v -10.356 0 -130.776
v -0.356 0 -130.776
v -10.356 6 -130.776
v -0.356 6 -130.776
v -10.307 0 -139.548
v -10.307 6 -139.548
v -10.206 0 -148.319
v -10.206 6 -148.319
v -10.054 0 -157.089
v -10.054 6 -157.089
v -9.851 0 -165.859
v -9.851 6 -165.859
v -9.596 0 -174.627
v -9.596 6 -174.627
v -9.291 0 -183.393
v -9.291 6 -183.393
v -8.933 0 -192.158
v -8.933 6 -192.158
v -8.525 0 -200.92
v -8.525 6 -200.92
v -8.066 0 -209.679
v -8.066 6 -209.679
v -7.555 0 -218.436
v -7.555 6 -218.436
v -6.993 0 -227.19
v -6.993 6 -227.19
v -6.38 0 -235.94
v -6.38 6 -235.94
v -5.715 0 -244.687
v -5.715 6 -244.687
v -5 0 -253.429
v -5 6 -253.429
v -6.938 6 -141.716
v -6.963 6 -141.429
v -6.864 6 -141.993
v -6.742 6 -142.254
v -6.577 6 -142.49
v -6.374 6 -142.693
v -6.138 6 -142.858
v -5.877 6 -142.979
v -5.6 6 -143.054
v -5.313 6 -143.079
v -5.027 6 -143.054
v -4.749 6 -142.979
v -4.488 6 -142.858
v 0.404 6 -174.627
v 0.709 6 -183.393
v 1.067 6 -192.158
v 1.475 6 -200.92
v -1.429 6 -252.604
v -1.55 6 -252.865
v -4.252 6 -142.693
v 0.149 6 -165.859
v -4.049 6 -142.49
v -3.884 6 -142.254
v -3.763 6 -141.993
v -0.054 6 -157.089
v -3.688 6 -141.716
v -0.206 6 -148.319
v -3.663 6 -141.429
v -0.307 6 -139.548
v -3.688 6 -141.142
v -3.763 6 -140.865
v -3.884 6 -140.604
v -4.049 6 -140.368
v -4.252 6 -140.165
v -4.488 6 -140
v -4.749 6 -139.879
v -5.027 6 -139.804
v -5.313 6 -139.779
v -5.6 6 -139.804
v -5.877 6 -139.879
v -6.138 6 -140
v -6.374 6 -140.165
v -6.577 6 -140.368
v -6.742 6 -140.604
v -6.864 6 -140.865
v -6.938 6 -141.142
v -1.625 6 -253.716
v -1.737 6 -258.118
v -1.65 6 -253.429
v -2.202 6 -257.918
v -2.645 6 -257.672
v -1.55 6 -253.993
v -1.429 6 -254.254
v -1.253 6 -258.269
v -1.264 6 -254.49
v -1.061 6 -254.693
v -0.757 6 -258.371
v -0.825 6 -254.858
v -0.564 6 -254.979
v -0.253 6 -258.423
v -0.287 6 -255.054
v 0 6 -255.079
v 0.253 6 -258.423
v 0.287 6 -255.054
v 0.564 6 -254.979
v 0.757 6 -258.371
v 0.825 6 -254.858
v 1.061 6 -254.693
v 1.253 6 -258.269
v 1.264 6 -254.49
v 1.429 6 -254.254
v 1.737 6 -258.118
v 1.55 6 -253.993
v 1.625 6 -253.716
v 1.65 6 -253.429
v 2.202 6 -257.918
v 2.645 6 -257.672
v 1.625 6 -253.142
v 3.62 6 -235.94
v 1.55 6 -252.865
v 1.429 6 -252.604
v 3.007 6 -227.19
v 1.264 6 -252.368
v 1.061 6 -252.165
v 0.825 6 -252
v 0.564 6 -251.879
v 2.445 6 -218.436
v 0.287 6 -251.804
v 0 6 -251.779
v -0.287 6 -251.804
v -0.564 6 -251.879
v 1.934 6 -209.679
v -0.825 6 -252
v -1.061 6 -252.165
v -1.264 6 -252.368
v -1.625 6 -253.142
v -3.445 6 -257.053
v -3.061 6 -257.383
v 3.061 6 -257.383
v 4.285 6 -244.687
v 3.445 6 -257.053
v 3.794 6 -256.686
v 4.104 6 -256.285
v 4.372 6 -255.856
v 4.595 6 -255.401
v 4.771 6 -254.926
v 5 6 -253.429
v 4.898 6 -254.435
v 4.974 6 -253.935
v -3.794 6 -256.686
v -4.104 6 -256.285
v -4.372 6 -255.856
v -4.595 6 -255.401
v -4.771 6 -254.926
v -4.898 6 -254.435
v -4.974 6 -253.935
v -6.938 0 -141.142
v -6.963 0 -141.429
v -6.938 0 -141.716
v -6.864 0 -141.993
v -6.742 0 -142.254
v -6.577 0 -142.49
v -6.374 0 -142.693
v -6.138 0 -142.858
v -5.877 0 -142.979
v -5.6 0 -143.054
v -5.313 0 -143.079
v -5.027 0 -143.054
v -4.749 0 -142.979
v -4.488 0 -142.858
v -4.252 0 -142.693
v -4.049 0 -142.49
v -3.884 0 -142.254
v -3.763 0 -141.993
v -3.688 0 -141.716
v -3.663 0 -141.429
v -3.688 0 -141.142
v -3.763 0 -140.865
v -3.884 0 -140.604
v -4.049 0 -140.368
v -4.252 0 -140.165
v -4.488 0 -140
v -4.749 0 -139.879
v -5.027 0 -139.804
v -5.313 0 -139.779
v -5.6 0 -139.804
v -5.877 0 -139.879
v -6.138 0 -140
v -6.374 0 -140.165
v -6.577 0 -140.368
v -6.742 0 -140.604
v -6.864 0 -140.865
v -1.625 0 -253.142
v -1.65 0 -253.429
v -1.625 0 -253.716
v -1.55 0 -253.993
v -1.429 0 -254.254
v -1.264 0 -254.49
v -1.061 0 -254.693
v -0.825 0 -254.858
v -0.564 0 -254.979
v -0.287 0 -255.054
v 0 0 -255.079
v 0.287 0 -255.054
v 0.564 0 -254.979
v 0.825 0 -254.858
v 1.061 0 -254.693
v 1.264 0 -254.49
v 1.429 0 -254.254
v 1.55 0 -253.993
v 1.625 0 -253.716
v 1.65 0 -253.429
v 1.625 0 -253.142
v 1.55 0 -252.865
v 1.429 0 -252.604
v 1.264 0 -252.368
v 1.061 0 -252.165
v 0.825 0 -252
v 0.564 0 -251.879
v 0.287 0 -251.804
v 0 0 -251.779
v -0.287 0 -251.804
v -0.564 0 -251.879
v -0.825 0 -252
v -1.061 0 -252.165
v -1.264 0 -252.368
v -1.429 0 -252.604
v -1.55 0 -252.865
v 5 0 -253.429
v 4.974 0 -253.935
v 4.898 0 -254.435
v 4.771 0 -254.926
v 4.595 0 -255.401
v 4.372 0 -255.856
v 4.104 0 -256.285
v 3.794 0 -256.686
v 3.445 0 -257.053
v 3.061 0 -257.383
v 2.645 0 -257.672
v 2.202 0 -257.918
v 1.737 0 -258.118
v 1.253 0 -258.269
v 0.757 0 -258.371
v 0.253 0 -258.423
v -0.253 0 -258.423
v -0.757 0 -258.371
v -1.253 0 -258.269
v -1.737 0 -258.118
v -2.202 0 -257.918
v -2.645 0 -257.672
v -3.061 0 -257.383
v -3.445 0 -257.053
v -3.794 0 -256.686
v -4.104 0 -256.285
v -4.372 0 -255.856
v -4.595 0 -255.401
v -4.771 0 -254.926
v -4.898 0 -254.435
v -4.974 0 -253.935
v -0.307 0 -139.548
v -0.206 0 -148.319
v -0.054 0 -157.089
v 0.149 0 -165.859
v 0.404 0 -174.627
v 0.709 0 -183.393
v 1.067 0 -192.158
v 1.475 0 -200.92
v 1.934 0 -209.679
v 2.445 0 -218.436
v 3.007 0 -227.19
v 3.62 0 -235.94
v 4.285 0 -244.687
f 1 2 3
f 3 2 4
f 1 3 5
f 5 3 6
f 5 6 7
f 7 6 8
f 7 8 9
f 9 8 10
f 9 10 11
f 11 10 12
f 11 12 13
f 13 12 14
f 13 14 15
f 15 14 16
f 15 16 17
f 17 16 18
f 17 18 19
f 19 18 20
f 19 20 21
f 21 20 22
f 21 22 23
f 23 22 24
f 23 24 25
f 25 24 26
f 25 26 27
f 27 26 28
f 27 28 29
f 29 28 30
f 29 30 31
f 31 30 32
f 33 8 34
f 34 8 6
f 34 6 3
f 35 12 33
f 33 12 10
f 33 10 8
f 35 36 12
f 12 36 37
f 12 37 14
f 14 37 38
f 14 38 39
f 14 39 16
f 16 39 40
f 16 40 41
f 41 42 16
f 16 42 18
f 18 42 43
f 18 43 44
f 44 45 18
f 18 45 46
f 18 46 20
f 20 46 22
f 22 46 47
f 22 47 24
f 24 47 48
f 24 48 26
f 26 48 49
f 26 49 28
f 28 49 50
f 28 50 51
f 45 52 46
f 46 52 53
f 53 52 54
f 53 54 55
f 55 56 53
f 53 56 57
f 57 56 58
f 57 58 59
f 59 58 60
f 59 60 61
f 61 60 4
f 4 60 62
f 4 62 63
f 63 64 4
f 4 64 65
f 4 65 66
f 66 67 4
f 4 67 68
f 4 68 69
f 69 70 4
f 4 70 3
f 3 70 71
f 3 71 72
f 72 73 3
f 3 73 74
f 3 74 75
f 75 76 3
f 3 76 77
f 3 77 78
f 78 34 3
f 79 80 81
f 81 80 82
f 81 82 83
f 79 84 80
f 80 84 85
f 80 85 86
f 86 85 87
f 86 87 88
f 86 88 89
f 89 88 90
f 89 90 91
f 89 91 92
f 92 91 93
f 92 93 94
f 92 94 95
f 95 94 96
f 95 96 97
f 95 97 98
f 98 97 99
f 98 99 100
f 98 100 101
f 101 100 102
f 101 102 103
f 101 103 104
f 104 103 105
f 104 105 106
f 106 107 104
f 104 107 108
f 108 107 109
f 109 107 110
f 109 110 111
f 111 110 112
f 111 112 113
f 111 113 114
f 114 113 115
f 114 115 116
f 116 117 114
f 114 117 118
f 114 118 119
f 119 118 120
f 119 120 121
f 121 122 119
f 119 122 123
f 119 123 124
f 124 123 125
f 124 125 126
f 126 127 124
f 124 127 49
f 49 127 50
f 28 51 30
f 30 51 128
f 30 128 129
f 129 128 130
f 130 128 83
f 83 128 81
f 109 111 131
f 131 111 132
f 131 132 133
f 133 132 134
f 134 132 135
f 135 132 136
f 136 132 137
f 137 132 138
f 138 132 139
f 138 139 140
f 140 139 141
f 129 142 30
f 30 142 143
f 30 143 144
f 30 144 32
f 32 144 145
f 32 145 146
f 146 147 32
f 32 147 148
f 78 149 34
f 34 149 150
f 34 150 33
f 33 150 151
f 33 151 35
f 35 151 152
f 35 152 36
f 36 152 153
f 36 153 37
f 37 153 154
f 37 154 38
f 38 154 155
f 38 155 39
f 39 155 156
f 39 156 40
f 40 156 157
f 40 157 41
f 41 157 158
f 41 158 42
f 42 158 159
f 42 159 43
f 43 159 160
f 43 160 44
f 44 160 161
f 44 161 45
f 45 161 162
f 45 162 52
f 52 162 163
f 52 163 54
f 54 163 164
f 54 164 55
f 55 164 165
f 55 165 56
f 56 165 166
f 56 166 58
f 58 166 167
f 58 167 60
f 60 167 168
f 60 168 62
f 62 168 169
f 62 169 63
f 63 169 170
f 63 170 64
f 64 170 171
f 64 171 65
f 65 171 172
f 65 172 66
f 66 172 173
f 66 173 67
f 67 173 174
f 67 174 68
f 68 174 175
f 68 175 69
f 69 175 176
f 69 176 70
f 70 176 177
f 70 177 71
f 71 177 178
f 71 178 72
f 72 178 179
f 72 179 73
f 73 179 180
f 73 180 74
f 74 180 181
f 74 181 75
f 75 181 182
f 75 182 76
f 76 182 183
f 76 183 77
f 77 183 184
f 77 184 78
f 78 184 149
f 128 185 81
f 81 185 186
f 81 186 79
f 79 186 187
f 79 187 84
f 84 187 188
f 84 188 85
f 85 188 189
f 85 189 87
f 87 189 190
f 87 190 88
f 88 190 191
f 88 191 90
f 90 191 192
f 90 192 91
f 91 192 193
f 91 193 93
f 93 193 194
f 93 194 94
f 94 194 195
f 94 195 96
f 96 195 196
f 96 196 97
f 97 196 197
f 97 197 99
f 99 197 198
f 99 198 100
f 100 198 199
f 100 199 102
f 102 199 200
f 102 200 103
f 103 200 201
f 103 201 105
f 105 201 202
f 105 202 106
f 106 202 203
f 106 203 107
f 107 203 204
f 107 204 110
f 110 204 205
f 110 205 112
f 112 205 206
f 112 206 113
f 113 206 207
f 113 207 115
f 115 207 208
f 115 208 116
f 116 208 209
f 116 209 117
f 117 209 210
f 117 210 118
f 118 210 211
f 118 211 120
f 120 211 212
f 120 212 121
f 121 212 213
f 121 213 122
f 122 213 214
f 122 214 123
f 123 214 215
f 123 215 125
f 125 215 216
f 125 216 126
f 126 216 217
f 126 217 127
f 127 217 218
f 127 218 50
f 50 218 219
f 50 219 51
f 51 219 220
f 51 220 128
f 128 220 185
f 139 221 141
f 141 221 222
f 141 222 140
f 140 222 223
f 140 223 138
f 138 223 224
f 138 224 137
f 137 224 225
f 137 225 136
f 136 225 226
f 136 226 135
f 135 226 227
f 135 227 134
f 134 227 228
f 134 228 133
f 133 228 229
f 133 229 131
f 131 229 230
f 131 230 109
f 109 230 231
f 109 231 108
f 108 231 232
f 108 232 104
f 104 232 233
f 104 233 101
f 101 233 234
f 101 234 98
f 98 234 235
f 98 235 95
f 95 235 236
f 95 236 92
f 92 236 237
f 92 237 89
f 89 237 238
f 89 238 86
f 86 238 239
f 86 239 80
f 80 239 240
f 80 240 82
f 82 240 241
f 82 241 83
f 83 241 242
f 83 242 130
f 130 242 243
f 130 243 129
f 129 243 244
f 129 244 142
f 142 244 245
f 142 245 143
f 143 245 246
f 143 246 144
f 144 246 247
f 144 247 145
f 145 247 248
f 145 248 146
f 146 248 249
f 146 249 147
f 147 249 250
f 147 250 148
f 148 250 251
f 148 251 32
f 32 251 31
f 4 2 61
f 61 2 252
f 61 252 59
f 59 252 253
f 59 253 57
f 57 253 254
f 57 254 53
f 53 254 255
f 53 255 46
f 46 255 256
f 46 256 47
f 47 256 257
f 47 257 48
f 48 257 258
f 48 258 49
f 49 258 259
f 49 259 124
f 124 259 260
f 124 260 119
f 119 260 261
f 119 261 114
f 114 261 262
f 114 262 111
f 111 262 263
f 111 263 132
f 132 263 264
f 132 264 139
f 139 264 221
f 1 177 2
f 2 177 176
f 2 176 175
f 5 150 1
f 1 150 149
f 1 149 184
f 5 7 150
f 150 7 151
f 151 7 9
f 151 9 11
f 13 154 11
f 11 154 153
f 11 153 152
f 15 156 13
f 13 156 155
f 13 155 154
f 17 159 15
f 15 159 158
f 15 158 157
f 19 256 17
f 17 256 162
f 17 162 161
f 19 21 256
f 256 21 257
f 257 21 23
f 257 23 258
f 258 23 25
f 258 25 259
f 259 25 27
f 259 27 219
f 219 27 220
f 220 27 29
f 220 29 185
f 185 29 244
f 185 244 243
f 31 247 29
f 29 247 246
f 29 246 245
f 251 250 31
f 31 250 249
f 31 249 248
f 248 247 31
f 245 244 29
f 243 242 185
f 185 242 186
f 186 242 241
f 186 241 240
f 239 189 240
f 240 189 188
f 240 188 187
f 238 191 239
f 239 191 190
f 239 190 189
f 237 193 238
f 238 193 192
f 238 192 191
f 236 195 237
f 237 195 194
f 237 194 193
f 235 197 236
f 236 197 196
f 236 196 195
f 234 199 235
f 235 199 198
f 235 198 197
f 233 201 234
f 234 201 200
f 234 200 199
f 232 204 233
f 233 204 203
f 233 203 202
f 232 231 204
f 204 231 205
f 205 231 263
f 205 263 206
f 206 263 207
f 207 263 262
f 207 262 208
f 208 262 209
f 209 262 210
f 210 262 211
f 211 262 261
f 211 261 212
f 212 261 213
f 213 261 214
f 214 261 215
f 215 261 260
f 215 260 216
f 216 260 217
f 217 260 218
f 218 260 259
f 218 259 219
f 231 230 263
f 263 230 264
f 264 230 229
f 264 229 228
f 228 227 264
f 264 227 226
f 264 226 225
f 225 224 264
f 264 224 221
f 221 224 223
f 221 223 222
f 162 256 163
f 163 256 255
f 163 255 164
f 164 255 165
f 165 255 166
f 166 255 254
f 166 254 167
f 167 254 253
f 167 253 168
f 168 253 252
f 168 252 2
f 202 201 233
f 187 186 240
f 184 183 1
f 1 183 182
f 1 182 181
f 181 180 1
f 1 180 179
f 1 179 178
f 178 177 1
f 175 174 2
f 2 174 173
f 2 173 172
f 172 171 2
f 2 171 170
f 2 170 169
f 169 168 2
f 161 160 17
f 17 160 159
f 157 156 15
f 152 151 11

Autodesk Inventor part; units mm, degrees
ref_plane "YZ Plane" through (0, 0, 0) normal (1, 0, 0) x (0, 1, 0)
ref_plane "XZ Plane" through (0, 0, 0) normal (0, 1, 0) x (-1, 0, 0)
ref_plane "XY Plane" through (0, 0, 0) normal (0, 0, 1) x (1, 0, 0)
sketch "Sketch1" plane through (0, 0, 0) normal (0, 1, 0) x (-1, 0, 0)
  line L0 (0, 0) -> (0, -253.429) construction
  line L1 (5, 0) -> (5, -253.429)
  line L2 (-5, -253.429) -> (-5, 0)
  arc A0 (5, 0) -> (-5, 0) centre (0, 0) ccw
  arc A1 (-5, -253.429) -> (5, -253.429) centre (0, -253.429) ccw
  circle A2 centre (0, 0) radius 1.65
  circle A3 centre (0, -253.429) radius 1.65
  arc A4 (5, -253.429) -> (5, 0) centre (-1489.6382, -126.7145) ccw
  arc A5 (-5, -253.429) -> (-5, 0) centre (-1499.6382, -126.7145) ccw
  circle A6 centre (5.3131, -141.429) radius 1.65
  point P0 (0, -126.7145)
  dimension "d0" = 3.3
  dimension "d1" = 3.3
  dimension "d2" = 10
  dimension "d3" = 253.429
  dimension "d16" = 1500
  dimension "d17" = 1500
  dimension "d18" = 3.3
  dimension "d19" = 112
extrude "Extrusion1" add sketch "Sketch1" along normal blind 6 contours A4 L1 A6 | L1 A6 A1 A5 A0
sketch "Sketch2" plane through (0, 6, 0) normal (0, 1, 0) x (1, 0, 0)
  line L0 (-23.0122, 130.7764) -> (18.8584, 130.7764)
  line L1 (18.8584, 130.7764) -> (18.8584, -10.1345)
  line L2 (18.8584, -10.1345) -> (-23.0122, -10.1345)
  line L3 (-23.0122, -10.1345) -> (-23.0122, 130.7764)
  line L4 (-71.0561, 282.155) -> (73.8808, 282.155)
  line L5 (73.8808, 282.155) -> (73.8808, -35.6326)
  line L6 (73.8808, -35.6326) -> (-71.0561, -35.6326)
  line L7 (-71.0561, -35.6326) -> (-71.0561, 282.155)
  point P0 (0, 0)
extrude "Extrusion2" cut sketch "Sketch2" against normal blind 10 contours L0 L1 L2 L3
properties part number "Part_5_p2"
